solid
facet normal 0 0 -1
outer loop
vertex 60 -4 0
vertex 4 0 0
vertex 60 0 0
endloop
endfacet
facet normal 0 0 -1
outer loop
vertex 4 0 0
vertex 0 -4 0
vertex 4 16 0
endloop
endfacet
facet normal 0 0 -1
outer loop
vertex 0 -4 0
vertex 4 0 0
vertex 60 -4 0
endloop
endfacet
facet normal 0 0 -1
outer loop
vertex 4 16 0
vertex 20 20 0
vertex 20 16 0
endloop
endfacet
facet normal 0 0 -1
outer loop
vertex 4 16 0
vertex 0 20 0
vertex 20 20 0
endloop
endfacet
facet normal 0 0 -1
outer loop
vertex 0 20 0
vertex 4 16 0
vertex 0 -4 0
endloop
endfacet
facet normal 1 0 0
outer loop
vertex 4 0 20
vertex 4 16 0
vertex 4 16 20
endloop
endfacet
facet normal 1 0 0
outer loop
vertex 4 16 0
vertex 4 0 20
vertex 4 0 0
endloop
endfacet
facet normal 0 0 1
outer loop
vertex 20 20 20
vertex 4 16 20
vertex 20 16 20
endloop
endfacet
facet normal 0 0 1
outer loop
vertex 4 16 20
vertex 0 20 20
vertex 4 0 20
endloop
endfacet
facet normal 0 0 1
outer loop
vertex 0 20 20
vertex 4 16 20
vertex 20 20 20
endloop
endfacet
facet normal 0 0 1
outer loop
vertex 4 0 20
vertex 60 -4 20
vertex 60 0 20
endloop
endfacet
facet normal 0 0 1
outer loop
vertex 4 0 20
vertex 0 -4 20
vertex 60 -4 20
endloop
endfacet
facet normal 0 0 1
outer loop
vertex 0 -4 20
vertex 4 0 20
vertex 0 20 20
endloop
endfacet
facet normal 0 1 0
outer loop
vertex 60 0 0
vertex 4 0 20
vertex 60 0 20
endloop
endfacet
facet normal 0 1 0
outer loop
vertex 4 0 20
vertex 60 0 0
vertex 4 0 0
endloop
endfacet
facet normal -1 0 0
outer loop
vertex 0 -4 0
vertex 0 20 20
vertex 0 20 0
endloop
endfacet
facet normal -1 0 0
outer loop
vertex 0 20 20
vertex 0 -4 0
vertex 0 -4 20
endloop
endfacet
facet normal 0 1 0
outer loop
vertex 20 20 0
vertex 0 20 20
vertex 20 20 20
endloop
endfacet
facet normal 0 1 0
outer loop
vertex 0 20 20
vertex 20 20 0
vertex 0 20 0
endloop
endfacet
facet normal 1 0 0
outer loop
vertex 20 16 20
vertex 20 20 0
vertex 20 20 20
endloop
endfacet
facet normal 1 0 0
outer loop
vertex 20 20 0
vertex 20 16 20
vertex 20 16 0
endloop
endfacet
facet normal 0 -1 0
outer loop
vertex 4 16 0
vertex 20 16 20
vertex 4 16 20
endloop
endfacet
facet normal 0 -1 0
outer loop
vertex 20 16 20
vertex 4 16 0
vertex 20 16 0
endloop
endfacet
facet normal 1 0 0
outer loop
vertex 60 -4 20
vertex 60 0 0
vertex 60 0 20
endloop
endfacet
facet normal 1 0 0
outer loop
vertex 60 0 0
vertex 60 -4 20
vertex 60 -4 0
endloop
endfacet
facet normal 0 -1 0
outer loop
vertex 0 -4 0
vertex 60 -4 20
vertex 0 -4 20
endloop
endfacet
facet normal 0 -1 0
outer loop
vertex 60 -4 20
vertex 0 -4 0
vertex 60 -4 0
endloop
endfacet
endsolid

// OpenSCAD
thickness = 4;

// Back
backWidth = 20;
backDepth = thickness;
backHeight = 60;

// Bottom
bottomWidth = 20;
bottomDepth = 20;
bottomHeight = thickness;

// Front
frontWidth = 20;
frontDepth = thickness;
frontHeight = 20;

module hook() {
    cube([backWidth, backDepth, backHeight]);
    translate([0, -(bottomDepth), 0]) {
        cube([bottomWidth, bottomDepth, bottomHeight]);
        cube([frontWidth, frontDepth, frontHeight]);
    }
}

rotate([180, 270, 0])
hook();
